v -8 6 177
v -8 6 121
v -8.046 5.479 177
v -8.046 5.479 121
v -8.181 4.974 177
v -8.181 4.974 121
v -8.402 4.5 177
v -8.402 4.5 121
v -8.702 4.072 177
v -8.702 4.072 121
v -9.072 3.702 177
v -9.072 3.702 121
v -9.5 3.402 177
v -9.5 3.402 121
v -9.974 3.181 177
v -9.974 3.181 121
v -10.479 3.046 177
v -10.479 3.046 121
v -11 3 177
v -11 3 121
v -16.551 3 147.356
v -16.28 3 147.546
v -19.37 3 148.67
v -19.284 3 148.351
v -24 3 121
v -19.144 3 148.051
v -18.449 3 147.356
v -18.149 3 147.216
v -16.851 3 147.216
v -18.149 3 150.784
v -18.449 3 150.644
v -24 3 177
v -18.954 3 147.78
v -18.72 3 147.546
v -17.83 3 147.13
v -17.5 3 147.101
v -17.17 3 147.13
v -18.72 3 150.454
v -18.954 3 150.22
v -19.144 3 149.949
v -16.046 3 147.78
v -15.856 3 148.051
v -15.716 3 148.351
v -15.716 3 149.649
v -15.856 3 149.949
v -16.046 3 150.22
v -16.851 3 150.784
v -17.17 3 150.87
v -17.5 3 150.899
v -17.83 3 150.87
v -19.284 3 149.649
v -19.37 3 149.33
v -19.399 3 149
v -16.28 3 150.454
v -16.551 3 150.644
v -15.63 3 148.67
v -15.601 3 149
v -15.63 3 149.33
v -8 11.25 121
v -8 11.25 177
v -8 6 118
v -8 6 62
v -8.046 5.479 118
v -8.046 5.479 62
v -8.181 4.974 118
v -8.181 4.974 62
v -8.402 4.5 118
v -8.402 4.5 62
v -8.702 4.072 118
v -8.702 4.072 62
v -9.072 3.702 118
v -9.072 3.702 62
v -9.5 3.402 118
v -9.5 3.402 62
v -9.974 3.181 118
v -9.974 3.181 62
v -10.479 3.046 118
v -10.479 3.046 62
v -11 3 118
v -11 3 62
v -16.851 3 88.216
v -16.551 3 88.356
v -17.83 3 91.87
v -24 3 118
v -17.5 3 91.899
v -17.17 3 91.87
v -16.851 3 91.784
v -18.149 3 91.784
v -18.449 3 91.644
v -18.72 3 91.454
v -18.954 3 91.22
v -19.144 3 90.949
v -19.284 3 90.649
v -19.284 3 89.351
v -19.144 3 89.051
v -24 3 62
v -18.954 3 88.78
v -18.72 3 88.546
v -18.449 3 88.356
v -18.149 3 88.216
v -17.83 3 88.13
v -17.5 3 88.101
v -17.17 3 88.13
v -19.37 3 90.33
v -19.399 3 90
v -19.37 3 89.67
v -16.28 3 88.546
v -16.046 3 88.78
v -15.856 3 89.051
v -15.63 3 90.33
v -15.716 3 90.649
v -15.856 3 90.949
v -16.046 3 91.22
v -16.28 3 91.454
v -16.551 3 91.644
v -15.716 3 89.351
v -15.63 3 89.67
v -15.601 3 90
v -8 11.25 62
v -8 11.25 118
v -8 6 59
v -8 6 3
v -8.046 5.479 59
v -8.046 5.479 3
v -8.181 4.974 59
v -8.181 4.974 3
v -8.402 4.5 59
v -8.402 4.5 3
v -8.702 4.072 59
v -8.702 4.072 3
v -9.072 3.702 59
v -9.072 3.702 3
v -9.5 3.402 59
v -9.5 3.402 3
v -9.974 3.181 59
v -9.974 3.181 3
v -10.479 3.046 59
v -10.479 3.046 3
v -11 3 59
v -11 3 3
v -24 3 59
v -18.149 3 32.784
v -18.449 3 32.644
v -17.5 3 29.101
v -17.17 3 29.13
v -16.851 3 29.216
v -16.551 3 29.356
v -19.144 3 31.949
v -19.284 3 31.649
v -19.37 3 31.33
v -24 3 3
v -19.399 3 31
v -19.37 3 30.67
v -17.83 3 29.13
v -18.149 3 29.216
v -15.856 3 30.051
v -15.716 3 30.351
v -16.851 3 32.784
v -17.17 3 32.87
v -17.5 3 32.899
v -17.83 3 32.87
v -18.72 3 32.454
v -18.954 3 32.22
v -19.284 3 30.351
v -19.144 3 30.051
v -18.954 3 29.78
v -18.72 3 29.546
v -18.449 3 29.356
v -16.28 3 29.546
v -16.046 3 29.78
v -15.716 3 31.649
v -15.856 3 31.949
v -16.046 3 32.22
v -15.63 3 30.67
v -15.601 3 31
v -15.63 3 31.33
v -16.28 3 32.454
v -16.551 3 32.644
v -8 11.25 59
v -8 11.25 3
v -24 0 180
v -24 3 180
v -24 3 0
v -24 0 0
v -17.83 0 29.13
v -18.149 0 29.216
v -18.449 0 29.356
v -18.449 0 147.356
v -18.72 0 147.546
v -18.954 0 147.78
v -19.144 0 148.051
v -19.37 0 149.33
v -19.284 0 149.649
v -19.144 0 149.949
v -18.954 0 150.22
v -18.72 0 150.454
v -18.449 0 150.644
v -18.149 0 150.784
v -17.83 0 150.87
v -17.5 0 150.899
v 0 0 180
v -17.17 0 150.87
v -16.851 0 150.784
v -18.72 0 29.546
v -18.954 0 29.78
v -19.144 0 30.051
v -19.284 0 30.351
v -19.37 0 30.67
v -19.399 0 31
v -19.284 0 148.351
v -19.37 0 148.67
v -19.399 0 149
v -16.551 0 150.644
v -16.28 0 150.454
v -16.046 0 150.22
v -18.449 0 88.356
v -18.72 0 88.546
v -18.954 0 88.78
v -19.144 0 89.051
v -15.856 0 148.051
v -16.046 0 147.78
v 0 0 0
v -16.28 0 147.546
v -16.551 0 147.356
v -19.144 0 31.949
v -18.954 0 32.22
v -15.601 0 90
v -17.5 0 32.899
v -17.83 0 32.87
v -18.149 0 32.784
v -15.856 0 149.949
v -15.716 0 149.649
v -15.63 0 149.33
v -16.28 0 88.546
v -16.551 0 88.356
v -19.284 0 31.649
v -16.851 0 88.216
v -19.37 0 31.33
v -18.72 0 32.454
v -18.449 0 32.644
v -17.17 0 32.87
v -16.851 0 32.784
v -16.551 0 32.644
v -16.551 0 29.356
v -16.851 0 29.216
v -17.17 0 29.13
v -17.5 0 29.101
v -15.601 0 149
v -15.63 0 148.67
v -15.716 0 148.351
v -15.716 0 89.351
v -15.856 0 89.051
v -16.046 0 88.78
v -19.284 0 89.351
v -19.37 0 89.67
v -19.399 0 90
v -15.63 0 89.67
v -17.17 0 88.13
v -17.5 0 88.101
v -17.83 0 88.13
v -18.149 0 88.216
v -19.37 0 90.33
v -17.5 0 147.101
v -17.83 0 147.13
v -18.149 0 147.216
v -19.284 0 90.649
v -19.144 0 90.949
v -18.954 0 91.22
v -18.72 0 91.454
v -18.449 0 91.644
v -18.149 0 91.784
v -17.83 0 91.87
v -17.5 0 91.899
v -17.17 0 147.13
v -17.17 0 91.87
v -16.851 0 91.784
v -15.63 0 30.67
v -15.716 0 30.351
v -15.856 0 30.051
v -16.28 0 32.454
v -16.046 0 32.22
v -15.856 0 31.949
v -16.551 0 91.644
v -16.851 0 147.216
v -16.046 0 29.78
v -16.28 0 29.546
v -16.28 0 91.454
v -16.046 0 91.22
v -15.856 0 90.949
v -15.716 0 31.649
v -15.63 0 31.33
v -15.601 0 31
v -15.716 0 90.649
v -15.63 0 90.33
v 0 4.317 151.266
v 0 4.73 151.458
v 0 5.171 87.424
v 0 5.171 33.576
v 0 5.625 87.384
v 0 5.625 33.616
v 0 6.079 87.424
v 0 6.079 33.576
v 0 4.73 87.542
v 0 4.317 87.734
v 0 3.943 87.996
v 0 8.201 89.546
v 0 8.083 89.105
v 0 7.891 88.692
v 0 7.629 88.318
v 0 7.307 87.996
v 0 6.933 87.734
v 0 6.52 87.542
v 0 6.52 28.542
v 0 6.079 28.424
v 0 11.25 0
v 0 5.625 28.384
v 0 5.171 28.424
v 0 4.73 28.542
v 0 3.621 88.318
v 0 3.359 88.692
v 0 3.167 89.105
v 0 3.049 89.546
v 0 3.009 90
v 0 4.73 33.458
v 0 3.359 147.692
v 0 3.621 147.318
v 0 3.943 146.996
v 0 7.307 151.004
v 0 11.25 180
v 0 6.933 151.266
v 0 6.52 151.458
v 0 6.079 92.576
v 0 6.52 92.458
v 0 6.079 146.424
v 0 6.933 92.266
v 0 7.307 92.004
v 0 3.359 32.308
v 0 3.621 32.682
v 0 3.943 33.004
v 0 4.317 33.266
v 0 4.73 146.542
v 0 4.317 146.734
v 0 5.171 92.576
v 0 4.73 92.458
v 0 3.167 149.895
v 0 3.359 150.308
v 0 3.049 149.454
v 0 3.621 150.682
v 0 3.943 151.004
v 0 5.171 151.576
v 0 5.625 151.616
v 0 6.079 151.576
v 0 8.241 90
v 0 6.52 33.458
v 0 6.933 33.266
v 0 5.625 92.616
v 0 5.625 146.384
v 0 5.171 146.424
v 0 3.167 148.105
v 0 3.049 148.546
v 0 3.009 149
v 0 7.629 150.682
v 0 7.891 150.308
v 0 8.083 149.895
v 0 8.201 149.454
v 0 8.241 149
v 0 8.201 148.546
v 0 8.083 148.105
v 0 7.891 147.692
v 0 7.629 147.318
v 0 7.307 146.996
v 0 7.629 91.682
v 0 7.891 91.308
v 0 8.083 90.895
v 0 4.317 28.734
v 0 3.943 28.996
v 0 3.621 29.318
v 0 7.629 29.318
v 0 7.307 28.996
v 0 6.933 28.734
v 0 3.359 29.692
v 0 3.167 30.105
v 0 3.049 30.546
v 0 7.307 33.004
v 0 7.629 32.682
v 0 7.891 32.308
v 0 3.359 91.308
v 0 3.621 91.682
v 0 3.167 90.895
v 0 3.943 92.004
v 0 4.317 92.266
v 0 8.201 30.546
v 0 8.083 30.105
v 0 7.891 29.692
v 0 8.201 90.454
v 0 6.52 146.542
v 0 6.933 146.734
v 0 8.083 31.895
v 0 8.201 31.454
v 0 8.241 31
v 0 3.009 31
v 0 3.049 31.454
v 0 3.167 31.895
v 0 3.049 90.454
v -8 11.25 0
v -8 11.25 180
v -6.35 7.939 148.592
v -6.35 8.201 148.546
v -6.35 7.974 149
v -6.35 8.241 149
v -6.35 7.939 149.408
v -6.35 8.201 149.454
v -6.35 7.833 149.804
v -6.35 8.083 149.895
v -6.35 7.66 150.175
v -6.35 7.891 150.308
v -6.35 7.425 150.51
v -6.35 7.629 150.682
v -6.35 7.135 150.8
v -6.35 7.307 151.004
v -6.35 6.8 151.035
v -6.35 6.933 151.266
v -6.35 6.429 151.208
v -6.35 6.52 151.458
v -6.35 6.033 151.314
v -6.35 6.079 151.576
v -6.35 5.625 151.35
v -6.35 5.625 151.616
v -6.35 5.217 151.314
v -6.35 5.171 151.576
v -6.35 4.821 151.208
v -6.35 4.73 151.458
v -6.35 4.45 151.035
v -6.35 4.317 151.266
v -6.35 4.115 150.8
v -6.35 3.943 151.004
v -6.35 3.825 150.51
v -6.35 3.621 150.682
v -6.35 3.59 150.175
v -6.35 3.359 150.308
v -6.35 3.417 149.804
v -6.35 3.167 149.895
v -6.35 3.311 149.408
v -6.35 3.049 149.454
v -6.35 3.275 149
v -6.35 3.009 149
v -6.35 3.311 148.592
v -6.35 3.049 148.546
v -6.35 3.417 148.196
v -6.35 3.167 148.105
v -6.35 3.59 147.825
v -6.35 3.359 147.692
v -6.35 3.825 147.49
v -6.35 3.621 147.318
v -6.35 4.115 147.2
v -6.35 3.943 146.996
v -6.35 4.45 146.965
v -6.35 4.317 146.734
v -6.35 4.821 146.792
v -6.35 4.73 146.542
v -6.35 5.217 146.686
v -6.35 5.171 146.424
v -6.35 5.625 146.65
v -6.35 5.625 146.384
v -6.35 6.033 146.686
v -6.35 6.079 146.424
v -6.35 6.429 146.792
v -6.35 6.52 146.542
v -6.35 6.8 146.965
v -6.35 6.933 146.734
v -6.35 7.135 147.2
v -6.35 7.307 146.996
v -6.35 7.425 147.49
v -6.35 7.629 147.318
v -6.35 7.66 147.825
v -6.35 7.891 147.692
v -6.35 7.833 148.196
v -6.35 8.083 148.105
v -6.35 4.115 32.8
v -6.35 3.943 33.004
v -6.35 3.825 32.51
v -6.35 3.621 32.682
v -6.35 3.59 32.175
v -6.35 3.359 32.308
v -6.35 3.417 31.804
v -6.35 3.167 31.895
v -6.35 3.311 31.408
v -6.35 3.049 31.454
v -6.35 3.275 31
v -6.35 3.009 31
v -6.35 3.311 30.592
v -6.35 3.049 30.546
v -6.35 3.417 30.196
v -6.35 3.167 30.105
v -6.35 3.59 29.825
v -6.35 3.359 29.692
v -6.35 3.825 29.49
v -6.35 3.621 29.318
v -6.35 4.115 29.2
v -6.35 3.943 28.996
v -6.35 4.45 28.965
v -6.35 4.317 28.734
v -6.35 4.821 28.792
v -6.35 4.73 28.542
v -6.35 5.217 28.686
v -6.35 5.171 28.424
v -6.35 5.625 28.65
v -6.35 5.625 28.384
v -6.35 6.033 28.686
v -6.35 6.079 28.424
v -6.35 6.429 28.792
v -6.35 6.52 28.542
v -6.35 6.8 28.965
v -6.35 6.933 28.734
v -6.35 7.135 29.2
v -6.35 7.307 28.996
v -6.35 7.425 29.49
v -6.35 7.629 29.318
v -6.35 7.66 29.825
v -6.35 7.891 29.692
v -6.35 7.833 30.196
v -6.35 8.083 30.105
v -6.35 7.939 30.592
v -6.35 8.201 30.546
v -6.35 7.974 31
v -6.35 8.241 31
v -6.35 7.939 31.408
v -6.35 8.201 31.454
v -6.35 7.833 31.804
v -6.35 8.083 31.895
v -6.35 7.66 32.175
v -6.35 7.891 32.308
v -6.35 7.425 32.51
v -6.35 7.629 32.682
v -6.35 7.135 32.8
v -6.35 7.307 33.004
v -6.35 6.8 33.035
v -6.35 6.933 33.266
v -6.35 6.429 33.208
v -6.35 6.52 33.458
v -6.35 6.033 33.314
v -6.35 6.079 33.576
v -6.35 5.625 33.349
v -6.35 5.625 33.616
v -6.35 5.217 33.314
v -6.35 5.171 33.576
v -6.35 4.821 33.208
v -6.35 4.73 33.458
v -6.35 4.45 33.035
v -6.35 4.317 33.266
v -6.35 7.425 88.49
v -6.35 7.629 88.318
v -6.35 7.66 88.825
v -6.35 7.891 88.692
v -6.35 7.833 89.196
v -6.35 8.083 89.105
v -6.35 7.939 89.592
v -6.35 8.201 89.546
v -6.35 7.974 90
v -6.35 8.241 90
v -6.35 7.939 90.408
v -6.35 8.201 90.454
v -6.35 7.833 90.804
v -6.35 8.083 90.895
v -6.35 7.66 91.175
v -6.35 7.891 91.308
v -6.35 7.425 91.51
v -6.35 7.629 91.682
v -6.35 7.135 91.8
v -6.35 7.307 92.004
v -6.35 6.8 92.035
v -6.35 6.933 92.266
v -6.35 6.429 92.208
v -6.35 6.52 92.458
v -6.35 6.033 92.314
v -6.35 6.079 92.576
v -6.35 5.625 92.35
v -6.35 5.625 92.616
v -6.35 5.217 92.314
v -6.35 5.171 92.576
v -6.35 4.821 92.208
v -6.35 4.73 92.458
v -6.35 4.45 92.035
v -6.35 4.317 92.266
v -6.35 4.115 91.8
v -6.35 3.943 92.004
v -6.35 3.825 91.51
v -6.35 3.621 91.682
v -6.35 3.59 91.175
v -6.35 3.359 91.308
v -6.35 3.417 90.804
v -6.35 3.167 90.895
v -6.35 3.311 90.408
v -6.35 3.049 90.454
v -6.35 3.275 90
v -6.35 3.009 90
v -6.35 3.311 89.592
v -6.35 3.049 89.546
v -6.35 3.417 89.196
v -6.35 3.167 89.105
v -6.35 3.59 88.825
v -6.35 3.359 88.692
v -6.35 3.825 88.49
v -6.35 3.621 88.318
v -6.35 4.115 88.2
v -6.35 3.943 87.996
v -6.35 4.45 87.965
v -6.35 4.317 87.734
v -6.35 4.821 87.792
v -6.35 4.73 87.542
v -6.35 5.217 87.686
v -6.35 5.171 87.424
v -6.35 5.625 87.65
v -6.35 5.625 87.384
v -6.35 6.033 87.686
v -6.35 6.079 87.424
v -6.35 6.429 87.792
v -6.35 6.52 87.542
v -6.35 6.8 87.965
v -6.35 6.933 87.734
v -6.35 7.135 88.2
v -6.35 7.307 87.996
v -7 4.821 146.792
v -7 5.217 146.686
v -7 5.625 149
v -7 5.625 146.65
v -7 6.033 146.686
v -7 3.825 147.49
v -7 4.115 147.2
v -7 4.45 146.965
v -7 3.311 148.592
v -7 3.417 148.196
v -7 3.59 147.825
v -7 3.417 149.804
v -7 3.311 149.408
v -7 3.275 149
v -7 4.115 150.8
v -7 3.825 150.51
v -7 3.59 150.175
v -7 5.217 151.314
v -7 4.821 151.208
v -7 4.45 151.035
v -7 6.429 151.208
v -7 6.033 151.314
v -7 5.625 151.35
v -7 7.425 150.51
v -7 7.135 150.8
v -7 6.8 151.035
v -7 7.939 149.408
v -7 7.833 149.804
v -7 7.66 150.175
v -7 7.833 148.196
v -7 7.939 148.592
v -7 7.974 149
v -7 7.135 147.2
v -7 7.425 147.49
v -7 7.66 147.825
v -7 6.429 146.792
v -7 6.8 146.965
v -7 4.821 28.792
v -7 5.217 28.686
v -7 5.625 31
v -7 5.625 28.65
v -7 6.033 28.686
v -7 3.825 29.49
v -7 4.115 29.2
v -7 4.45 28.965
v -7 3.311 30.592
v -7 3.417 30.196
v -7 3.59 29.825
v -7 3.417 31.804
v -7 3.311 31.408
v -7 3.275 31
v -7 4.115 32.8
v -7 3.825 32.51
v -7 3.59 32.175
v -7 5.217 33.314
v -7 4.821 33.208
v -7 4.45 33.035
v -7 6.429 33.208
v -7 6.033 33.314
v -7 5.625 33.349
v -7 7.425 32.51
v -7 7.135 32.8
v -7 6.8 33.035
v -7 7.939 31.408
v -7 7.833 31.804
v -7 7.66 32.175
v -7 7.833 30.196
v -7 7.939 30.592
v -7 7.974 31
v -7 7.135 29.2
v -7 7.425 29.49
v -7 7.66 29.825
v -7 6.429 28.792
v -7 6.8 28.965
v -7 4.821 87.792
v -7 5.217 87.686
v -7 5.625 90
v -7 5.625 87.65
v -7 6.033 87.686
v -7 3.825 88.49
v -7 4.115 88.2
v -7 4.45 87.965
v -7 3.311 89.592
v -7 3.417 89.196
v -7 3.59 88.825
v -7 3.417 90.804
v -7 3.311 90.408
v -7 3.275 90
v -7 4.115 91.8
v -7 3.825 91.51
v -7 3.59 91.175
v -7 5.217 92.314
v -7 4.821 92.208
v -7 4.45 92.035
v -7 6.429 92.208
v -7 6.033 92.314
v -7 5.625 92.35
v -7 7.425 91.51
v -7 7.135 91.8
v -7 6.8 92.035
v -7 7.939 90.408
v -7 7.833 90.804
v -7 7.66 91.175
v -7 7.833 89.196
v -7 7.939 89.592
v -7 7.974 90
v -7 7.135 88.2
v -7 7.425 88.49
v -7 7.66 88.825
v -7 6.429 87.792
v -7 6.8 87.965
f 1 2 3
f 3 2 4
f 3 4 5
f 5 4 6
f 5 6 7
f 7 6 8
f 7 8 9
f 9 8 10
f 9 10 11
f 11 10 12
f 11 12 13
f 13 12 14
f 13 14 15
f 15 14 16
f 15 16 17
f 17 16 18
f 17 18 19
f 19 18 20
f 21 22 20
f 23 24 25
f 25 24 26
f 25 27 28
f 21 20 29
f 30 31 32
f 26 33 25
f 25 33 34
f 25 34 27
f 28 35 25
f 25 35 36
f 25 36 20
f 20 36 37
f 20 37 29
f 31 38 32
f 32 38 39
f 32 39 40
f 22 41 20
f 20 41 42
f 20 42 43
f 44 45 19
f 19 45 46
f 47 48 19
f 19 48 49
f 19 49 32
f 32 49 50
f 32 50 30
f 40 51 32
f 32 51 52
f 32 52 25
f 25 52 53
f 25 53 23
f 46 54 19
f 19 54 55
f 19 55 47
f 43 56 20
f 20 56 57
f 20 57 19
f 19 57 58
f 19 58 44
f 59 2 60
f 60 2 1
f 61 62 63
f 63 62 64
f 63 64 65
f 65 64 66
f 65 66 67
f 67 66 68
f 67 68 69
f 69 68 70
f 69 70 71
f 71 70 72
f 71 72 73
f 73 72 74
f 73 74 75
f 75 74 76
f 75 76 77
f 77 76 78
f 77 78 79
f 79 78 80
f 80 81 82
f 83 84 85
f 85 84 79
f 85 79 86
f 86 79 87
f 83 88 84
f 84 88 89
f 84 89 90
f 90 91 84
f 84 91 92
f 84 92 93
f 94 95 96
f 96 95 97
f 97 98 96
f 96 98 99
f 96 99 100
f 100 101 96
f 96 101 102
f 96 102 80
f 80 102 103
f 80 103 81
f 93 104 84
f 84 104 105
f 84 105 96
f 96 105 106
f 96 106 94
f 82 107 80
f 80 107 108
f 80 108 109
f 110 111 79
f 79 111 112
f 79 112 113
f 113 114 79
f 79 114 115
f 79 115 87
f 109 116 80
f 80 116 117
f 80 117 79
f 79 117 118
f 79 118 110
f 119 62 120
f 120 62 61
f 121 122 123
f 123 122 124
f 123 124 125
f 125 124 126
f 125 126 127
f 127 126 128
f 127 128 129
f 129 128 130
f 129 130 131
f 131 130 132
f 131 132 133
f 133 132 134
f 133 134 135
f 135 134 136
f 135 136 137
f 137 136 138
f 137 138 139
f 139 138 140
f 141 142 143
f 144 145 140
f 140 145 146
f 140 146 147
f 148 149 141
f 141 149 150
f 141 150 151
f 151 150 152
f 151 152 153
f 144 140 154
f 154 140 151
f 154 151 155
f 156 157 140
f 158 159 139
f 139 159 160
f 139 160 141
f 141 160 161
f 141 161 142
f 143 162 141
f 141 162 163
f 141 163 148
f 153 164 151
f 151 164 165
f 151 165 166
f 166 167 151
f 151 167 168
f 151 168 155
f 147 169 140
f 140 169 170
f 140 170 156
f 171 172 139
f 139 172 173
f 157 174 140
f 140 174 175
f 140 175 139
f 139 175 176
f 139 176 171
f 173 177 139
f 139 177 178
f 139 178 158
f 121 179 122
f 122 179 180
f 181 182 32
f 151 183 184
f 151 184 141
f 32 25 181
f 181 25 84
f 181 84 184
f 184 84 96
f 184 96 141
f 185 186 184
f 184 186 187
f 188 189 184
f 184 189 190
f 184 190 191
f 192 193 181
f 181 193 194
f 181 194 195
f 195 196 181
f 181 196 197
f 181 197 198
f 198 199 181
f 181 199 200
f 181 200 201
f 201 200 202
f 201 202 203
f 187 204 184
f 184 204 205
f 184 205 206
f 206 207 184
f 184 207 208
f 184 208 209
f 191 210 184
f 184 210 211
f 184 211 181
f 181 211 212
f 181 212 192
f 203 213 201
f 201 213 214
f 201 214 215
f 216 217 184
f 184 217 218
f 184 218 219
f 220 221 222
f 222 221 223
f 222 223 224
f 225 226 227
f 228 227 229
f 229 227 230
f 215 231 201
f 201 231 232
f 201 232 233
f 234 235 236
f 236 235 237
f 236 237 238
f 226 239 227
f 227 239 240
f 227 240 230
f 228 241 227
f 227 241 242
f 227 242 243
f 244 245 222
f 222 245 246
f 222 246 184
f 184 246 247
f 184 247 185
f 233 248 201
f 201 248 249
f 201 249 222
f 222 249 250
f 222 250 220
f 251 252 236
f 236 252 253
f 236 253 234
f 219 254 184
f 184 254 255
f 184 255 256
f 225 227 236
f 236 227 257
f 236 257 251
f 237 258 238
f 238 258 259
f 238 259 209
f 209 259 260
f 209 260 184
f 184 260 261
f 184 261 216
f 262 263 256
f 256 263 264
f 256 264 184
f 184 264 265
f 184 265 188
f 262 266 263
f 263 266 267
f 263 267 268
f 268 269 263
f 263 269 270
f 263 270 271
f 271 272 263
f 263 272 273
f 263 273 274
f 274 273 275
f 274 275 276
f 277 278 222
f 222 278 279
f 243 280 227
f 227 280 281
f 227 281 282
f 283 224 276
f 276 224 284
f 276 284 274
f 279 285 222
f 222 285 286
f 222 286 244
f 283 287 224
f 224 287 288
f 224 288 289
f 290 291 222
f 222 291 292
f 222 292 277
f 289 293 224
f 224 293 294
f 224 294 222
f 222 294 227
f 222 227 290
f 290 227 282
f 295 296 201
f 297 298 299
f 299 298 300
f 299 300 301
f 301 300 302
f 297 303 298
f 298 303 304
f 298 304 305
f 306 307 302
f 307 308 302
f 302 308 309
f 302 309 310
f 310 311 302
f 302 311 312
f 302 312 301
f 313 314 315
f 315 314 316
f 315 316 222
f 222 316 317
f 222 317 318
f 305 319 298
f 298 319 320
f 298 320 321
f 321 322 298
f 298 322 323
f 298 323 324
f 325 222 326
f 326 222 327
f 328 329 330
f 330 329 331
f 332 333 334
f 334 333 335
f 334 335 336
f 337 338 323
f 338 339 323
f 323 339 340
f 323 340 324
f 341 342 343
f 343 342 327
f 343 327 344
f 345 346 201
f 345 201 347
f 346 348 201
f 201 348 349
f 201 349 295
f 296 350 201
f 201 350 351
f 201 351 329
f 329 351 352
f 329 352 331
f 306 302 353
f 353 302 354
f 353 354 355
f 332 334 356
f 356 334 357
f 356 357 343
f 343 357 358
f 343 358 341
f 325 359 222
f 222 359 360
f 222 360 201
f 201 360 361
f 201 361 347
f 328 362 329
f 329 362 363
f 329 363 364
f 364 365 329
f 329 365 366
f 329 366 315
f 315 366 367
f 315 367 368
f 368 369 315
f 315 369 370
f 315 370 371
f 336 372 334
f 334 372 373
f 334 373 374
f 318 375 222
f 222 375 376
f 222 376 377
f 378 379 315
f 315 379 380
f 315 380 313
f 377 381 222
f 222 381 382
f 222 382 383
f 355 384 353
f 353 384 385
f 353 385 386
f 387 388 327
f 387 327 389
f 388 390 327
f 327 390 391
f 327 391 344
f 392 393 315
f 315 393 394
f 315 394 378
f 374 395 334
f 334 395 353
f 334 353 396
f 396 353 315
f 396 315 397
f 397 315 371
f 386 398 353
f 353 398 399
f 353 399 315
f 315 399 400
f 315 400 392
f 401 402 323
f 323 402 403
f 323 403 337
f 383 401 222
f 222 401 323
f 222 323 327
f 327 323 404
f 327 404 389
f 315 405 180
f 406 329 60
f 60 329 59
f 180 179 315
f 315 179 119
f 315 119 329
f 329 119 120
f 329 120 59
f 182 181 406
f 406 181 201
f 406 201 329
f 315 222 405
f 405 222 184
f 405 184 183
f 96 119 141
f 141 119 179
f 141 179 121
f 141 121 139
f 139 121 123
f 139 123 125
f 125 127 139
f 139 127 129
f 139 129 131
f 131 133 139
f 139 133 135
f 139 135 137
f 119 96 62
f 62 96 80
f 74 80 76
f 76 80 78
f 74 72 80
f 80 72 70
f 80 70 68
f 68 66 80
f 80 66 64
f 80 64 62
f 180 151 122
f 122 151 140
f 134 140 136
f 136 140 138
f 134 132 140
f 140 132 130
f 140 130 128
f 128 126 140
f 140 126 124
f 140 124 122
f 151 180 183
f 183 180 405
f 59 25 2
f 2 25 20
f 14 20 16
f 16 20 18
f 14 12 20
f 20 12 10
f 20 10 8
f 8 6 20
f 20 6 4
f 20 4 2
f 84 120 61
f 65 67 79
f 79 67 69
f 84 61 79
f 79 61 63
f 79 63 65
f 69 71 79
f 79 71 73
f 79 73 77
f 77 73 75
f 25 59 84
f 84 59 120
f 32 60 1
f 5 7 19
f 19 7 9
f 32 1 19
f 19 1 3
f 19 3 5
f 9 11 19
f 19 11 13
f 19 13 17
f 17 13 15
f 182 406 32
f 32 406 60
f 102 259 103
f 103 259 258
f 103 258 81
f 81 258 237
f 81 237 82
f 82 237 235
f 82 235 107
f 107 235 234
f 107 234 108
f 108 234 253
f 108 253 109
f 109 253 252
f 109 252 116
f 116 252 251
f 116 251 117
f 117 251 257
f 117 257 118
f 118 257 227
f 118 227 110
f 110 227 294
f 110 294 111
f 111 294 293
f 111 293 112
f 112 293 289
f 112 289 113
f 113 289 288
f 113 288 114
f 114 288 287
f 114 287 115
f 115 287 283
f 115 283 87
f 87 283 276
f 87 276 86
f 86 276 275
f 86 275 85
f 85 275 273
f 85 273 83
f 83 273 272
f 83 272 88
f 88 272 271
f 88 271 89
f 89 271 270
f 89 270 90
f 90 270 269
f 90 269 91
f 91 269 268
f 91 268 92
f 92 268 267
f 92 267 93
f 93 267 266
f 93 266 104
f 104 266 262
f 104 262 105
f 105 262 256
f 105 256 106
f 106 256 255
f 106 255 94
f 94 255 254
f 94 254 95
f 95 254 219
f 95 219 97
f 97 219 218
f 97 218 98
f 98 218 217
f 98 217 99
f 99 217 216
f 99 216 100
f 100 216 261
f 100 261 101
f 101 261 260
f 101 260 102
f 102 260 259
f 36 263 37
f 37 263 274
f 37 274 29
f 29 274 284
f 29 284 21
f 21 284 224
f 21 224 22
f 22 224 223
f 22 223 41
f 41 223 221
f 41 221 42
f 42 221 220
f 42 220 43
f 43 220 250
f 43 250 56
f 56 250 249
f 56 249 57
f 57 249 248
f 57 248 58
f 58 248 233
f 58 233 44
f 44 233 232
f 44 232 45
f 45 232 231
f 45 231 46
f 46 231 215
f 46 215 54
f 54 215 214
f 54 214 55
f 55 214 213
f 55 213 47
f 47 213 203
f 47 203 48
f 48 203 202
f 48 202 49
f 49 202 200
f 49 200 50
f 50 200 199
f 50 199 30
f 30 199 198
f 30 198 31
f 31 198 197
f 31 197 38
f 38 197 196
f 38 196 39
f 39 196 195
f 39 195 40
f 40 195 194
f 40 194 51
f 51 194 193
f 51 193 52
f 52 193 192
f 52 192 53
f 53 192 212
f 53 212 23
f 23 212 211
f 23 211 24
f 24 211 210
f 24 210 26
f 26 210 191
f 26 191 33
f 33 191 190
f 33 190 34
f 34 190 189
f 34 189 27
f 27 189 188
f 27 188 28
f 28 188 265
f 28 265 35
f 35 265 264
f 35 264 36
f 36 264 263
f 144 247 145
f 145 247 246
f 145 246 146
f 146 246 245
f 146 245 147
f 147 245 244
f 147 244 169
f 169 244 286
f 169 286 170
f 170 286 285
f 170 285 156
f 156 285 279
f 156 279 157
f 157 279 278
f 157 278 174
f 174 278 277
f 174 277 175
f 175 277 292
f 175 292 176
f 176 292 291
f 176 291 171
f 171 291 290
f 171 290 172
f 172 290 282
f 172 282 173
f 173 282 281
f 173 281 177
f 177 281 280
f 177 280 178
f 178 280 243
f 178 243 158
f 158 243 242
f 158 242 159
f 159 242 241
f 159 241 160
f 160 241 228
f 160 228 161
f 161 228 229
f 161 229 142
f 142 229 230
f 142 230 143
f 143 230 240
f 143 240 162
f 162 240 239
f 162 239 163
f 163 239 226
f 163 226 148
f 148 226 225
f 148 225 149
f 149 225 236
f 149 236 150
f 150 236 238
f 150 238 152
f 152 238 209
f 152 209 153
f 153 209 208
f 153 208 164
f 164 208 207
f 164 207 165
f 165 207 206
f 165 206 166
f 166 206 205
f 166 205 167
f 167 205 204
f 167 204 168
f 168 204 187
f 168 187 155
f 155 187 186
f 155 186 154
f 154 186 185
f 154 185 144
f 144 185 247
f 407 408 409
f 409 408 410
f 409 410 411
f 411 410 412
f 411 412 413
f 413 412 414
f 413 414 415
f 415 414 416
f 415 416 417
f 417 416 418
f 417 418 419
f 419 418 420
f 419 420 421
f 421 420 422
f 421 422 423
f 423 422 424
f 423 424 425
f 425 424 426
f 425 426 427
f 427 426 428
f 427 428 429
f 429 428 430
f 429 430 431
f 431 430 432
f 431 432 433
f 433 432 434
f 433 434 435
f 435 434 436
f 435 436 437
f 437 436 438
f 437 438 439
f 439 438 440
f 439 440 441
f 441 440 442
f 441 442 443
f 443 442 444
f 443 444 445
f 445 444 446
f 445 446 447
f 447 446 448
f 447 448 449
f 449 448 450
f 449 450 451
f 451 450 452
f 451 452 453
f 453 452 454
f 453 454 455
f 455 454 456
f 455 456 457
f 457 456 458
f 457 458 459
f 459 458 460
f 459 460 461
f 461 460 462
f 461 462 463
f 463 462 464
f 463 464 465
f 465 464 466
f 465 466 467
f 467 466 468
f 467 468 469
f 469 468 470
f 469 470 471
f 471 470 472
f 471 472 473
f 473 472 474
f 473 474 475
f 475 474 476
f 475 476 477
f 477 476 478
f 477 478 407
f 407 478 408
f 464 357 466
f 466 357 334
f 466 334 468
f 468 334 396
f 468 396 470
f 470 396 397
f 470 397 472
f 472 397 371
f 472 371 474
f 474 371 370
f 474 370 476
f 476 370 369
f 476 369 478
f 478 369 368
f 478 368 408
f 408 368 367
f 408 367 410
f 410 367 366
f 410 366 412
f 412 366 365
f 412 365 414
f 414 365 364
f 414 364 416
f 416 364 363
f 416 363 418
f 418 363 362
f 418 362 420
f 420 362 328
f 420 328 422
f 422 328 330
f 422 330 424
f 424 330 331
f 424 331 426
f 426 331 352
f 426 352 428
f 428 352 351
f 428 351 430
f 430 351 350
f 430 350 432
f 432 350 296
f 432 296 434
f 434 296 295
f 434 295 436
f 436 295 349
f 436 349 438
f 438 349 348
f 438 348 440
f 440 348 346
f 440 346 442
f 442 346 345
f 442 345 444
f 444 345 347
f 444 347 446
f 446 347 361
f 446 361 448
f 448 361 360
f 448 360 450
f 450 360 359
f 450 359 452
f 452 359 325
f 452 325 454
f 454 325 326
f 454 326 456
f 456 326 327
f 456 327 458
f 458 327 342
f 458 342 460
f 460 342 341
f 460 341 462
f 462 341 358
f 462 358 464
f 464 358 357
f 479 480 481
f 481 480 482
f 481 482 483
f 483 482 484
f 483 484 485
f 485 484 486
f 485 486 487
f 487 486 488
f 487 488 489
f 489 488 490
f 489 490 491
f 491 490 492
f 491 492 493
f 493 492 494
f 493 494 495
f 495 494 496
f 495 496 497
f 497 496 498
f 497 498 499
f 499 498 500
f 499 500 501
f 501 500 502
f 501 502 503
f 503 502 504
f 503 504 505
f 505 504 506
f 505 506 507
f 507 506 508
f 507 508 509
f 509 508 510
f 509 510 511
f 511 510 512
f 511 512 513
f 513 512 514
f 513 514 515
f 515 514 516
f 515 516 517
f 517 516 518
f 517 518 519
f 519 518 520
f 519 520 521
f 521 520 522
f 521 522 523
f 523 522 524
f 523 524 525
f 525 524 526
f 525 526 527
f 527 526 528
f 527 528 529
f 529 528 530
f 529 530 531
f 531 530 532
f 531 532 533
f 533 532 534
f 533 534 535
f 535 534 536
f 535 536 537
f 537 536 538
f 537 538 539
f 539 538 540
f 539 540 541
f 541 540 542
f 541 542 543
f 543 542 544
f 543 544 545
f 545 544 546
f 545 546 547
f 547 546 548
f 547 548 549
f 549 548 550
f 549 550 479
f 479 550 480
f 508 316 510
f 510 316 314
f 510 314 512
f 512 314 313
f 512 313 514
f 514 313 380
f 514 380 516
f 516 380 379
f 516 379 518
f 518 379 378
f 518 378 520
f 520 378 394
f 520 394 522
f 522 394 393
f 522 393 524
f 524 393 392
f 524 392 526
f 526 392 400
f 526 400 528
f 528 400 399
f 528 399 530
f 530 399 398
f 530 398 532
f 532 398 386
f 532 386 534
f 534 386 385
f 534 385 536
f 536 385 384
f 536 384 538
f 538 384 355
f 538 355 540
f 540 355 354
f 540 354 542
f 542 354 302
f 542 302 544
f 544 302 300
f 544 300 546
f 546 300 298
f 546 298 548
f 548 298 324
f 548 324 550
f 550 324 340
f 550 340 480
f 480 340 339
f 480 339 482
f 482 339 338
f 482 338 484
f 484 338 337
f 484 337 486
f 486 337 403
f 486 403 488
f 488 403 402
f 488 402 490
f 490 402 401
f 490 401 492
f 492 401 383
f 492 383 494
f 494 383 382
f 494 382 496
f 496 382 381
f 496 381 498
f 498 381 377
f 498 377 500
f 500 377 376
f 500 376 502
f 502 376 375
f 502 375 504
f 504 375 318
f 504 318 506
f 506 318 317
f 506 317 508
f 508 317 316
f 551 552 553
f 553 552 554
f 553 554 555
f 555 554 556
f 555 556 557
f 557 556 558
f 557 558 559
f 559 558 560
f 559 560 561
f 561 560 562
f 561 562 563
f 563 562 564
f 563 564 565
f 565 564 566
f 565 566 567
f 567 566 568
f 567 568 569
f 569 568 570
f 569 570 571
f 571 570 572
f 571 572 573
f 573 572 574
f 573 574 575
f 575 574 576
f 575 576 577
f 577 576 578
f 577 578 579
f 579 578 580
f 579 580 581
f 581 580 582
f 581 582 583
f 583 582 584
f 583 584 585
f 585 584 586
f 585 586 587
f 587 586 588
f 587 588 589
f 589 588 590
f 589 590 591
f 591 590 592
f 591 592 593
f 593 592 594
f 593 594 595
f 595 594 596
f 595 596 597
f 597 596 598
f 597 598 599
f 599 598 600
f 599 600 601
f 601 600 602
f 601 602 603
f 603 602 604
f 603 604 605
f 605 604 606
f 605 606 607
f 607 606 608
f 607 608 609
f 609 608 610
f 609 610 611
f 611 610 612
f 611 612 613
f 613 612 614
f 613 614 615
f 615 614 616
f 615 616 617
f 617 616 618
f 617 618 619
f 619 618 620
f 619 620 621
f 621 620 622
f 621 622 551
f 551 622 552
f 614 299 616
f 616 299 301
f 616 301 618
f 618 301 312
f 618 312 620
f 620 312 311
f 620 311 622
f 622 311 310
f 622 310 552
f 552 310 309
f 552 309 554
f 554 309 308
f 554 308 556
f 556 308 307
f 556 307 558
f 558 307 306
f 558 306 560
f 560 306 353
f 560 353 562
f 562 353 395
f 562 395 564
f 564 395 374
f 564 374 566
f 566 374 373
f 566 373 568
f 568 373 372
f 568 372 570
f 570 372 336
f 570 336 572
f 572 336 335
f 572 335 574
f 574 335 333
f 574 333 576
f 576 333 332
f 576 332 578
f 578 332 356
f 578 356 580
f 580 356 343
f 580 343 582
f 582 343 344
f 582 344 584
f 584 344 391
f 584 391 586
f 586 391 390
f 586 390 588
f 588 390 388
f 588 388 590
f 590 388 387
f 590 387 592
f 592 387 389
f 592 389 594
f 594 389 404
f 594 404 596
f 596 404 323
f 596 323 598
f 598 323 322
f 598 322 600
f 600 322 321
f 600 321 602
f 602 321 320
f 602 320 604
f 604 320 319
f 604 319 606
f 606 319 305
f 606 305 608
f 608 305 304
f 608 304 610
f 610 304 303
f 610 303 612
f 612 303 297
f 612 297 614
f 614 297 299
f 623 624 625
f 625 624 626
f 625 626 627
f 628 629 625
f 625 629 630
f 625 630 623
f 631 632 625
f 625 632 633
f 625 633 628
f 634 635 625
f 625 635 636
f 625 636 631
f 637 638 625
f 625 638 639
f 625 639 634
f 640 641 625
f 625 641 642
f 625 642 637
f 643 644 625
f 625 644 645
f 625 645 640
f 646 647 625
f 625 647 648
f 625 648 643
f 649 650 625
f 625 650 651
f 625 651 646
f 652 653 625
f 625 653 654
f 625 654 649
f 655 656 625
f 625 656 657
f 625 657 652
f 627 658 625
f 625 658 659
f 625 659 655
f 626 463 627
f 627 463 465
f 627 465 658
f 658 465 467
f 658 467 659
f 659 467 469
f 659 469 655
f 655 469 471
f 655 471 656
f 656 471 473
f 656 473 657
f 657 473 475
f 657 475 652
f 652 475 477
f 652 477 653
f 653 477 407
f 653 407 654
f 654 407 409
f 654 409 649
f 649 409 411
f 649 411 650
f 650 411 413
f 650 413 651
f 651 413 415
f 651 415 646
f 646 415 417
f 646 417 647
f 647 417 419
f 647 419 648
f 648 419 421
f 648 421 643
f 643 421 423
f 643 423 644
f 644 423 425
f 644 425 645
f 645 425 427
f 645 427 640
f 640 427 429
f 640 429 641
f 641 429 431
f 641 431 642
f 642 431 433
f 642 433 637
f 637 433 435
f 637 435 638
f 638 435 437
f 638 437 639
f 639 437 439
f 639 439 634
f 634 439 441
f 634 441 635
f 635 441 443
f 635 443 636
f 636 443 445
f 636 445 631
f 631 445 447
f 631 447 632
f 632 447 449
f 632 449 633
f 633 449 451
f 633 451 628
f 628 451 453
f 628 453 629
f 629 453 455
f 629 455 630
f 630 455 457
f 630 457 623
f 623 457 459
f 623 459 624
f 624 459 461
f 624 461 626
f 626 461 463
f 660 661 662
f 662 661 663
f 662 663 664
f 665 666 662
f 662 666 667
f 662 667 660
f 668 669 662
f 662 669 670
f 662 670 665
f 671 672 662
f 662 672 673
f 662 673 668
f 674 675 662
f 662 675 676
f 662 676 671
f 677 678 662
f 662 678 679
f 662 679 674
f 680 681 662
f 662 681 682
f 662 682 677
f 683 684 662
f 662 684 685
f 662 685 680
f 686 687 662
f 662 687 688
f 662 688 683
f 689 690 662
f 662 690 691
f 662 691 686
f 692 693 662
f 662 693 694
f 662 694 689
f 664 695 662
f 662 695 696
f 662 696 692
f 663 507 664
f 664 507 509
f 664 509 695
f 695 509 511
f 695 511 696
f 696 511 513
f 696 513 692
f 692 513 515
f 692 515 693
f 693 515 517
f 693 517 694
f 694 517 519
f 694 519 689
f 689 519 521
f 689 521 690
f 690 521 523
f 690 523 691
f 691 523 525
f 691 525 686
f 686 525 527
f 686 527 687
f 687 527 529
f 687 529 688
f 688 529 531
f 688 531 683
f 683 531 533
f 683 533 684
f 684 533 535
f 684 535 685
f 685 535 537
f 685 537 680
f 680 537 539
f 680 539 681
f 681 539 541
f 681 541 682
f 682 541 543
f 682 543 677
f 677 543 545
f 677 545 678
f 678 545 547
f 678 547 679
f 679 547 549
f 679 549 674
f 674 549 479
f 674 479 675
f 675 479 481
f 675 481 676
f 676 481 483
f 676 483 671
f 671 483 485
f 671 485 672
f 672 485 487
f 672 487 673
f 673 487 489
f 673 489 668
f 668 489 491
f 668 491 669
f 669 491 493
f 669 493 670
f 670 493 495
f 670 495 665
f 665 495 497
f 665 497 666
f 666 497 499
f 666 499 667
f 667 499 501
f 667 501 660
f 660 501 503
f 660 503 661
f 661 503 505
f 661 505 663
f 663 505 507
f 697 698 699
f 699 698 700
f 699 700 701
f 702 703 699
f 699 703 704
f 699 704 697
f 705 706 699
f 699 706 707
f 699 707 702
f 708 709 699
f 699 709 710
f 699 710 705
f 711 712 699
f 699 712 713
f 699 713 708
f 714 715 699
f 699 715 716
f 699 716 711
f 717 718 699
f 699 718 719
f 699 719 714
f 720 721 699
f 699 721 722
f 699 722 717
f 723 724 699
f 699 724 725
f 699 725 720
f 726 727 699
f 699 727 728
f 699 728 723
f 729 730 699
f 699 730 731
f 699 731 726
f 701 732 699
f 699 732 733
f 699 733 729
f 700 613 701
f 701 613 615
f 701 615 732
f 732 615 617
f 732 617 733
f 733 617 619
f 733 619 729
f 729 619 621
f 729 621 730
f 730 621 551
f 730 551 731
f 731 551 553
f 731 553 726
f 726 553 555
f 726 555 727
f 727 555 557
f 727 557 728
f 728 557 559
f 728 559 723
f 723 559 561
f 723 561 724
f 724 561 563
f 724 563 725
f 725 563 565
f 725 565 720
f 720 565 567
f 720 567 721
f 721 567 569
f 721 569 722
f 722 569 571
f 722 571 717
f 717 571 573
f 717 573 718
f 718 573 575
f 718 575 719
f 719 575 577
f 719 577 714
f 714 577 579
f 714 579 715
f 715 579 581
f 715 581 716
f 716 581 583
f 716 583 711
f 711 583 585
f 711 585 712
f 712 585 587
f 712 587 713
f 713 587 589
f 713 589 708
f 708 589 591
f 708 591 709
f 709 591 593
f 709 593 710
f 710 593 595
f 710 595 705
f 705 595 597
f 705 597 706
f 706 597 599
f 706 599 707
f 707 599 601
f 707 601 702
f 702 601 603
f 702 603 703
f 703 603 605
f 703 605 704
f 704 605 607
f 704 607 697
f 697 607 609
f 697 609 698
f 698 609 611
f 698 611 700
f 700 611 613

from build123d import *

# Parameters (mm, degrees)
BOSS_EXTRUDE1_DEPTH   = 180
RIB3_REACH            = 124.404
SKETCH4_WALL_W        = 264.810334732
SKETCH4_WALL_H        = 3
RIB4_START            = -3
RIB4_DEPTH            = 3
F_6_CLEARANCE_HOLE1_D = 3.7973
SKETCH6_R             = 2.3495
CUT_EXTRUDE1_DEPTH    = 7
SKETCH12_R            = 2.6162
CUT_EXTRUDE2_DEPTH    = 6.35


# Read off the part's stored shape, not the designer's step: Rib4
with BuildPart() as part:
    # Sketch1 → Boss-Extrude1 (new body)
    with BuildSketch(Plane.XY):
        with BuildLine():
            Line((0, 0), (0, 11.25))
            Line((0, 11.25), (-8, 11.25))
            Line((-8, 11.25), (-8, 6))
            ThreePointArc((-8, 6), (-8.878679656, 3.878679656), (-11, 3))
            Line((-11, 3), (-24, 3))
            Line((-24, 3), (-24, 0))
            Line((-24, 0), (0, 0))
        make_face()
    extrude(amount=BOSS_EXTRUDE1_DEPTH)

    # Sketch4 wall → Rib3 (add, up to next)
    with BuildSketch(Plane(origin=(-16, 7.125, 60.5), x_dir=(-0.888803167408, -0.458289133195, 0), z_dir=(-0.458289133195, 0.888803167408, 0)), mode=Mode.PRIVATE) as rib3_sk1:
        Rectangle(SKETCH4_WALL_W, SKETCH4_WALL_H)
    rib3_tool1 = extrude(rib3_sk1.sketch, amount=-RIB3_REACH, mode=Mode.PRIVATE) - part.part
    rib3 = rib3_tool1.solids().sort_by_distance((-16, 7.125, 60.5))[0]
    add(rib3)

    # Rib4 outline → Rib4 (add)
    with BuildSketch(Plane(origin=(0, 0, 0), x_dir=(-1, 0, 0), z_dir=(0, 0, -1)).offset(RIB4_START)):
        with BuildLine():
            Line((24, 3), (8, 11.25))
            Line((8, 11.25), (8, 6))
            ThreePointArc((8, 6), (8.878679656, 3.878679656), (11, 3))
            Line((11, 3), (24, 3))
        make_face()
    rib4 = extrude(amount=RIB4_DEPTH)

    # Mirror1: Rib3, Rib4 across plane
    add(rib3.mirror(Plane(origin=(0, 0, 90), x_dir=(1, 0, 0), z_dir=(0, 0, -1))))
    add(rib4.mirror(Plane(origin=(0, 0, 90), x_dir=(1, 0, 0), z_dir=(0, 0, -1))))

    # #6 Clearance Hole1 (through all)
    with Locations(Plane(origin=(0, 0, 0), x_dir=(-1, 0, 0), z_dir=(0, -1, 0))):
        with Locations((17.5, -31), (17.5, -149), (17.5, -90)):
            Hole(F_6_CLEARANCE_HOLE1_D / 2)

    # Sketch6 → Cut-Extrude1 (cut)
    with BuildSketch(Plane(origin=(0, 0, 0), x_dir=(0, 0, -1), z_dir=(1, 0, 0))):
        with Locations((-149, 5.625)):
            Circle(SKETCH6_R)
        with Locations((-31, 5.625)):
            Circle(SKETCH6_R)
        with Locations((-90, 5.625)):
            Circle(SKETCH6_R)
    extrude(amount=-CUT_EXTRUDE1_DEPTH, mode=Mode.SUBTRACT)

    # Sketch12 → Cut-Extrude2 (cut)
    with BuildSketch(Plane(origin=(0, 0, 0), x_dir=(0, 0, -1), z_dir=(1, 0, 0))):
        with Locations((-149, 5.625)):
            Circle(SKETCH12_R)
        with Locations((-31, 5.625)):
            Circle(SKETCH12_R)
        with Locations((-90, 5.625)):
            Circle(SKETCH12_R)
    extrude(amount=-CUT_EXTRUDE2_DEPTH, mode=Mode.SUBTRACT)


solid = part.part
